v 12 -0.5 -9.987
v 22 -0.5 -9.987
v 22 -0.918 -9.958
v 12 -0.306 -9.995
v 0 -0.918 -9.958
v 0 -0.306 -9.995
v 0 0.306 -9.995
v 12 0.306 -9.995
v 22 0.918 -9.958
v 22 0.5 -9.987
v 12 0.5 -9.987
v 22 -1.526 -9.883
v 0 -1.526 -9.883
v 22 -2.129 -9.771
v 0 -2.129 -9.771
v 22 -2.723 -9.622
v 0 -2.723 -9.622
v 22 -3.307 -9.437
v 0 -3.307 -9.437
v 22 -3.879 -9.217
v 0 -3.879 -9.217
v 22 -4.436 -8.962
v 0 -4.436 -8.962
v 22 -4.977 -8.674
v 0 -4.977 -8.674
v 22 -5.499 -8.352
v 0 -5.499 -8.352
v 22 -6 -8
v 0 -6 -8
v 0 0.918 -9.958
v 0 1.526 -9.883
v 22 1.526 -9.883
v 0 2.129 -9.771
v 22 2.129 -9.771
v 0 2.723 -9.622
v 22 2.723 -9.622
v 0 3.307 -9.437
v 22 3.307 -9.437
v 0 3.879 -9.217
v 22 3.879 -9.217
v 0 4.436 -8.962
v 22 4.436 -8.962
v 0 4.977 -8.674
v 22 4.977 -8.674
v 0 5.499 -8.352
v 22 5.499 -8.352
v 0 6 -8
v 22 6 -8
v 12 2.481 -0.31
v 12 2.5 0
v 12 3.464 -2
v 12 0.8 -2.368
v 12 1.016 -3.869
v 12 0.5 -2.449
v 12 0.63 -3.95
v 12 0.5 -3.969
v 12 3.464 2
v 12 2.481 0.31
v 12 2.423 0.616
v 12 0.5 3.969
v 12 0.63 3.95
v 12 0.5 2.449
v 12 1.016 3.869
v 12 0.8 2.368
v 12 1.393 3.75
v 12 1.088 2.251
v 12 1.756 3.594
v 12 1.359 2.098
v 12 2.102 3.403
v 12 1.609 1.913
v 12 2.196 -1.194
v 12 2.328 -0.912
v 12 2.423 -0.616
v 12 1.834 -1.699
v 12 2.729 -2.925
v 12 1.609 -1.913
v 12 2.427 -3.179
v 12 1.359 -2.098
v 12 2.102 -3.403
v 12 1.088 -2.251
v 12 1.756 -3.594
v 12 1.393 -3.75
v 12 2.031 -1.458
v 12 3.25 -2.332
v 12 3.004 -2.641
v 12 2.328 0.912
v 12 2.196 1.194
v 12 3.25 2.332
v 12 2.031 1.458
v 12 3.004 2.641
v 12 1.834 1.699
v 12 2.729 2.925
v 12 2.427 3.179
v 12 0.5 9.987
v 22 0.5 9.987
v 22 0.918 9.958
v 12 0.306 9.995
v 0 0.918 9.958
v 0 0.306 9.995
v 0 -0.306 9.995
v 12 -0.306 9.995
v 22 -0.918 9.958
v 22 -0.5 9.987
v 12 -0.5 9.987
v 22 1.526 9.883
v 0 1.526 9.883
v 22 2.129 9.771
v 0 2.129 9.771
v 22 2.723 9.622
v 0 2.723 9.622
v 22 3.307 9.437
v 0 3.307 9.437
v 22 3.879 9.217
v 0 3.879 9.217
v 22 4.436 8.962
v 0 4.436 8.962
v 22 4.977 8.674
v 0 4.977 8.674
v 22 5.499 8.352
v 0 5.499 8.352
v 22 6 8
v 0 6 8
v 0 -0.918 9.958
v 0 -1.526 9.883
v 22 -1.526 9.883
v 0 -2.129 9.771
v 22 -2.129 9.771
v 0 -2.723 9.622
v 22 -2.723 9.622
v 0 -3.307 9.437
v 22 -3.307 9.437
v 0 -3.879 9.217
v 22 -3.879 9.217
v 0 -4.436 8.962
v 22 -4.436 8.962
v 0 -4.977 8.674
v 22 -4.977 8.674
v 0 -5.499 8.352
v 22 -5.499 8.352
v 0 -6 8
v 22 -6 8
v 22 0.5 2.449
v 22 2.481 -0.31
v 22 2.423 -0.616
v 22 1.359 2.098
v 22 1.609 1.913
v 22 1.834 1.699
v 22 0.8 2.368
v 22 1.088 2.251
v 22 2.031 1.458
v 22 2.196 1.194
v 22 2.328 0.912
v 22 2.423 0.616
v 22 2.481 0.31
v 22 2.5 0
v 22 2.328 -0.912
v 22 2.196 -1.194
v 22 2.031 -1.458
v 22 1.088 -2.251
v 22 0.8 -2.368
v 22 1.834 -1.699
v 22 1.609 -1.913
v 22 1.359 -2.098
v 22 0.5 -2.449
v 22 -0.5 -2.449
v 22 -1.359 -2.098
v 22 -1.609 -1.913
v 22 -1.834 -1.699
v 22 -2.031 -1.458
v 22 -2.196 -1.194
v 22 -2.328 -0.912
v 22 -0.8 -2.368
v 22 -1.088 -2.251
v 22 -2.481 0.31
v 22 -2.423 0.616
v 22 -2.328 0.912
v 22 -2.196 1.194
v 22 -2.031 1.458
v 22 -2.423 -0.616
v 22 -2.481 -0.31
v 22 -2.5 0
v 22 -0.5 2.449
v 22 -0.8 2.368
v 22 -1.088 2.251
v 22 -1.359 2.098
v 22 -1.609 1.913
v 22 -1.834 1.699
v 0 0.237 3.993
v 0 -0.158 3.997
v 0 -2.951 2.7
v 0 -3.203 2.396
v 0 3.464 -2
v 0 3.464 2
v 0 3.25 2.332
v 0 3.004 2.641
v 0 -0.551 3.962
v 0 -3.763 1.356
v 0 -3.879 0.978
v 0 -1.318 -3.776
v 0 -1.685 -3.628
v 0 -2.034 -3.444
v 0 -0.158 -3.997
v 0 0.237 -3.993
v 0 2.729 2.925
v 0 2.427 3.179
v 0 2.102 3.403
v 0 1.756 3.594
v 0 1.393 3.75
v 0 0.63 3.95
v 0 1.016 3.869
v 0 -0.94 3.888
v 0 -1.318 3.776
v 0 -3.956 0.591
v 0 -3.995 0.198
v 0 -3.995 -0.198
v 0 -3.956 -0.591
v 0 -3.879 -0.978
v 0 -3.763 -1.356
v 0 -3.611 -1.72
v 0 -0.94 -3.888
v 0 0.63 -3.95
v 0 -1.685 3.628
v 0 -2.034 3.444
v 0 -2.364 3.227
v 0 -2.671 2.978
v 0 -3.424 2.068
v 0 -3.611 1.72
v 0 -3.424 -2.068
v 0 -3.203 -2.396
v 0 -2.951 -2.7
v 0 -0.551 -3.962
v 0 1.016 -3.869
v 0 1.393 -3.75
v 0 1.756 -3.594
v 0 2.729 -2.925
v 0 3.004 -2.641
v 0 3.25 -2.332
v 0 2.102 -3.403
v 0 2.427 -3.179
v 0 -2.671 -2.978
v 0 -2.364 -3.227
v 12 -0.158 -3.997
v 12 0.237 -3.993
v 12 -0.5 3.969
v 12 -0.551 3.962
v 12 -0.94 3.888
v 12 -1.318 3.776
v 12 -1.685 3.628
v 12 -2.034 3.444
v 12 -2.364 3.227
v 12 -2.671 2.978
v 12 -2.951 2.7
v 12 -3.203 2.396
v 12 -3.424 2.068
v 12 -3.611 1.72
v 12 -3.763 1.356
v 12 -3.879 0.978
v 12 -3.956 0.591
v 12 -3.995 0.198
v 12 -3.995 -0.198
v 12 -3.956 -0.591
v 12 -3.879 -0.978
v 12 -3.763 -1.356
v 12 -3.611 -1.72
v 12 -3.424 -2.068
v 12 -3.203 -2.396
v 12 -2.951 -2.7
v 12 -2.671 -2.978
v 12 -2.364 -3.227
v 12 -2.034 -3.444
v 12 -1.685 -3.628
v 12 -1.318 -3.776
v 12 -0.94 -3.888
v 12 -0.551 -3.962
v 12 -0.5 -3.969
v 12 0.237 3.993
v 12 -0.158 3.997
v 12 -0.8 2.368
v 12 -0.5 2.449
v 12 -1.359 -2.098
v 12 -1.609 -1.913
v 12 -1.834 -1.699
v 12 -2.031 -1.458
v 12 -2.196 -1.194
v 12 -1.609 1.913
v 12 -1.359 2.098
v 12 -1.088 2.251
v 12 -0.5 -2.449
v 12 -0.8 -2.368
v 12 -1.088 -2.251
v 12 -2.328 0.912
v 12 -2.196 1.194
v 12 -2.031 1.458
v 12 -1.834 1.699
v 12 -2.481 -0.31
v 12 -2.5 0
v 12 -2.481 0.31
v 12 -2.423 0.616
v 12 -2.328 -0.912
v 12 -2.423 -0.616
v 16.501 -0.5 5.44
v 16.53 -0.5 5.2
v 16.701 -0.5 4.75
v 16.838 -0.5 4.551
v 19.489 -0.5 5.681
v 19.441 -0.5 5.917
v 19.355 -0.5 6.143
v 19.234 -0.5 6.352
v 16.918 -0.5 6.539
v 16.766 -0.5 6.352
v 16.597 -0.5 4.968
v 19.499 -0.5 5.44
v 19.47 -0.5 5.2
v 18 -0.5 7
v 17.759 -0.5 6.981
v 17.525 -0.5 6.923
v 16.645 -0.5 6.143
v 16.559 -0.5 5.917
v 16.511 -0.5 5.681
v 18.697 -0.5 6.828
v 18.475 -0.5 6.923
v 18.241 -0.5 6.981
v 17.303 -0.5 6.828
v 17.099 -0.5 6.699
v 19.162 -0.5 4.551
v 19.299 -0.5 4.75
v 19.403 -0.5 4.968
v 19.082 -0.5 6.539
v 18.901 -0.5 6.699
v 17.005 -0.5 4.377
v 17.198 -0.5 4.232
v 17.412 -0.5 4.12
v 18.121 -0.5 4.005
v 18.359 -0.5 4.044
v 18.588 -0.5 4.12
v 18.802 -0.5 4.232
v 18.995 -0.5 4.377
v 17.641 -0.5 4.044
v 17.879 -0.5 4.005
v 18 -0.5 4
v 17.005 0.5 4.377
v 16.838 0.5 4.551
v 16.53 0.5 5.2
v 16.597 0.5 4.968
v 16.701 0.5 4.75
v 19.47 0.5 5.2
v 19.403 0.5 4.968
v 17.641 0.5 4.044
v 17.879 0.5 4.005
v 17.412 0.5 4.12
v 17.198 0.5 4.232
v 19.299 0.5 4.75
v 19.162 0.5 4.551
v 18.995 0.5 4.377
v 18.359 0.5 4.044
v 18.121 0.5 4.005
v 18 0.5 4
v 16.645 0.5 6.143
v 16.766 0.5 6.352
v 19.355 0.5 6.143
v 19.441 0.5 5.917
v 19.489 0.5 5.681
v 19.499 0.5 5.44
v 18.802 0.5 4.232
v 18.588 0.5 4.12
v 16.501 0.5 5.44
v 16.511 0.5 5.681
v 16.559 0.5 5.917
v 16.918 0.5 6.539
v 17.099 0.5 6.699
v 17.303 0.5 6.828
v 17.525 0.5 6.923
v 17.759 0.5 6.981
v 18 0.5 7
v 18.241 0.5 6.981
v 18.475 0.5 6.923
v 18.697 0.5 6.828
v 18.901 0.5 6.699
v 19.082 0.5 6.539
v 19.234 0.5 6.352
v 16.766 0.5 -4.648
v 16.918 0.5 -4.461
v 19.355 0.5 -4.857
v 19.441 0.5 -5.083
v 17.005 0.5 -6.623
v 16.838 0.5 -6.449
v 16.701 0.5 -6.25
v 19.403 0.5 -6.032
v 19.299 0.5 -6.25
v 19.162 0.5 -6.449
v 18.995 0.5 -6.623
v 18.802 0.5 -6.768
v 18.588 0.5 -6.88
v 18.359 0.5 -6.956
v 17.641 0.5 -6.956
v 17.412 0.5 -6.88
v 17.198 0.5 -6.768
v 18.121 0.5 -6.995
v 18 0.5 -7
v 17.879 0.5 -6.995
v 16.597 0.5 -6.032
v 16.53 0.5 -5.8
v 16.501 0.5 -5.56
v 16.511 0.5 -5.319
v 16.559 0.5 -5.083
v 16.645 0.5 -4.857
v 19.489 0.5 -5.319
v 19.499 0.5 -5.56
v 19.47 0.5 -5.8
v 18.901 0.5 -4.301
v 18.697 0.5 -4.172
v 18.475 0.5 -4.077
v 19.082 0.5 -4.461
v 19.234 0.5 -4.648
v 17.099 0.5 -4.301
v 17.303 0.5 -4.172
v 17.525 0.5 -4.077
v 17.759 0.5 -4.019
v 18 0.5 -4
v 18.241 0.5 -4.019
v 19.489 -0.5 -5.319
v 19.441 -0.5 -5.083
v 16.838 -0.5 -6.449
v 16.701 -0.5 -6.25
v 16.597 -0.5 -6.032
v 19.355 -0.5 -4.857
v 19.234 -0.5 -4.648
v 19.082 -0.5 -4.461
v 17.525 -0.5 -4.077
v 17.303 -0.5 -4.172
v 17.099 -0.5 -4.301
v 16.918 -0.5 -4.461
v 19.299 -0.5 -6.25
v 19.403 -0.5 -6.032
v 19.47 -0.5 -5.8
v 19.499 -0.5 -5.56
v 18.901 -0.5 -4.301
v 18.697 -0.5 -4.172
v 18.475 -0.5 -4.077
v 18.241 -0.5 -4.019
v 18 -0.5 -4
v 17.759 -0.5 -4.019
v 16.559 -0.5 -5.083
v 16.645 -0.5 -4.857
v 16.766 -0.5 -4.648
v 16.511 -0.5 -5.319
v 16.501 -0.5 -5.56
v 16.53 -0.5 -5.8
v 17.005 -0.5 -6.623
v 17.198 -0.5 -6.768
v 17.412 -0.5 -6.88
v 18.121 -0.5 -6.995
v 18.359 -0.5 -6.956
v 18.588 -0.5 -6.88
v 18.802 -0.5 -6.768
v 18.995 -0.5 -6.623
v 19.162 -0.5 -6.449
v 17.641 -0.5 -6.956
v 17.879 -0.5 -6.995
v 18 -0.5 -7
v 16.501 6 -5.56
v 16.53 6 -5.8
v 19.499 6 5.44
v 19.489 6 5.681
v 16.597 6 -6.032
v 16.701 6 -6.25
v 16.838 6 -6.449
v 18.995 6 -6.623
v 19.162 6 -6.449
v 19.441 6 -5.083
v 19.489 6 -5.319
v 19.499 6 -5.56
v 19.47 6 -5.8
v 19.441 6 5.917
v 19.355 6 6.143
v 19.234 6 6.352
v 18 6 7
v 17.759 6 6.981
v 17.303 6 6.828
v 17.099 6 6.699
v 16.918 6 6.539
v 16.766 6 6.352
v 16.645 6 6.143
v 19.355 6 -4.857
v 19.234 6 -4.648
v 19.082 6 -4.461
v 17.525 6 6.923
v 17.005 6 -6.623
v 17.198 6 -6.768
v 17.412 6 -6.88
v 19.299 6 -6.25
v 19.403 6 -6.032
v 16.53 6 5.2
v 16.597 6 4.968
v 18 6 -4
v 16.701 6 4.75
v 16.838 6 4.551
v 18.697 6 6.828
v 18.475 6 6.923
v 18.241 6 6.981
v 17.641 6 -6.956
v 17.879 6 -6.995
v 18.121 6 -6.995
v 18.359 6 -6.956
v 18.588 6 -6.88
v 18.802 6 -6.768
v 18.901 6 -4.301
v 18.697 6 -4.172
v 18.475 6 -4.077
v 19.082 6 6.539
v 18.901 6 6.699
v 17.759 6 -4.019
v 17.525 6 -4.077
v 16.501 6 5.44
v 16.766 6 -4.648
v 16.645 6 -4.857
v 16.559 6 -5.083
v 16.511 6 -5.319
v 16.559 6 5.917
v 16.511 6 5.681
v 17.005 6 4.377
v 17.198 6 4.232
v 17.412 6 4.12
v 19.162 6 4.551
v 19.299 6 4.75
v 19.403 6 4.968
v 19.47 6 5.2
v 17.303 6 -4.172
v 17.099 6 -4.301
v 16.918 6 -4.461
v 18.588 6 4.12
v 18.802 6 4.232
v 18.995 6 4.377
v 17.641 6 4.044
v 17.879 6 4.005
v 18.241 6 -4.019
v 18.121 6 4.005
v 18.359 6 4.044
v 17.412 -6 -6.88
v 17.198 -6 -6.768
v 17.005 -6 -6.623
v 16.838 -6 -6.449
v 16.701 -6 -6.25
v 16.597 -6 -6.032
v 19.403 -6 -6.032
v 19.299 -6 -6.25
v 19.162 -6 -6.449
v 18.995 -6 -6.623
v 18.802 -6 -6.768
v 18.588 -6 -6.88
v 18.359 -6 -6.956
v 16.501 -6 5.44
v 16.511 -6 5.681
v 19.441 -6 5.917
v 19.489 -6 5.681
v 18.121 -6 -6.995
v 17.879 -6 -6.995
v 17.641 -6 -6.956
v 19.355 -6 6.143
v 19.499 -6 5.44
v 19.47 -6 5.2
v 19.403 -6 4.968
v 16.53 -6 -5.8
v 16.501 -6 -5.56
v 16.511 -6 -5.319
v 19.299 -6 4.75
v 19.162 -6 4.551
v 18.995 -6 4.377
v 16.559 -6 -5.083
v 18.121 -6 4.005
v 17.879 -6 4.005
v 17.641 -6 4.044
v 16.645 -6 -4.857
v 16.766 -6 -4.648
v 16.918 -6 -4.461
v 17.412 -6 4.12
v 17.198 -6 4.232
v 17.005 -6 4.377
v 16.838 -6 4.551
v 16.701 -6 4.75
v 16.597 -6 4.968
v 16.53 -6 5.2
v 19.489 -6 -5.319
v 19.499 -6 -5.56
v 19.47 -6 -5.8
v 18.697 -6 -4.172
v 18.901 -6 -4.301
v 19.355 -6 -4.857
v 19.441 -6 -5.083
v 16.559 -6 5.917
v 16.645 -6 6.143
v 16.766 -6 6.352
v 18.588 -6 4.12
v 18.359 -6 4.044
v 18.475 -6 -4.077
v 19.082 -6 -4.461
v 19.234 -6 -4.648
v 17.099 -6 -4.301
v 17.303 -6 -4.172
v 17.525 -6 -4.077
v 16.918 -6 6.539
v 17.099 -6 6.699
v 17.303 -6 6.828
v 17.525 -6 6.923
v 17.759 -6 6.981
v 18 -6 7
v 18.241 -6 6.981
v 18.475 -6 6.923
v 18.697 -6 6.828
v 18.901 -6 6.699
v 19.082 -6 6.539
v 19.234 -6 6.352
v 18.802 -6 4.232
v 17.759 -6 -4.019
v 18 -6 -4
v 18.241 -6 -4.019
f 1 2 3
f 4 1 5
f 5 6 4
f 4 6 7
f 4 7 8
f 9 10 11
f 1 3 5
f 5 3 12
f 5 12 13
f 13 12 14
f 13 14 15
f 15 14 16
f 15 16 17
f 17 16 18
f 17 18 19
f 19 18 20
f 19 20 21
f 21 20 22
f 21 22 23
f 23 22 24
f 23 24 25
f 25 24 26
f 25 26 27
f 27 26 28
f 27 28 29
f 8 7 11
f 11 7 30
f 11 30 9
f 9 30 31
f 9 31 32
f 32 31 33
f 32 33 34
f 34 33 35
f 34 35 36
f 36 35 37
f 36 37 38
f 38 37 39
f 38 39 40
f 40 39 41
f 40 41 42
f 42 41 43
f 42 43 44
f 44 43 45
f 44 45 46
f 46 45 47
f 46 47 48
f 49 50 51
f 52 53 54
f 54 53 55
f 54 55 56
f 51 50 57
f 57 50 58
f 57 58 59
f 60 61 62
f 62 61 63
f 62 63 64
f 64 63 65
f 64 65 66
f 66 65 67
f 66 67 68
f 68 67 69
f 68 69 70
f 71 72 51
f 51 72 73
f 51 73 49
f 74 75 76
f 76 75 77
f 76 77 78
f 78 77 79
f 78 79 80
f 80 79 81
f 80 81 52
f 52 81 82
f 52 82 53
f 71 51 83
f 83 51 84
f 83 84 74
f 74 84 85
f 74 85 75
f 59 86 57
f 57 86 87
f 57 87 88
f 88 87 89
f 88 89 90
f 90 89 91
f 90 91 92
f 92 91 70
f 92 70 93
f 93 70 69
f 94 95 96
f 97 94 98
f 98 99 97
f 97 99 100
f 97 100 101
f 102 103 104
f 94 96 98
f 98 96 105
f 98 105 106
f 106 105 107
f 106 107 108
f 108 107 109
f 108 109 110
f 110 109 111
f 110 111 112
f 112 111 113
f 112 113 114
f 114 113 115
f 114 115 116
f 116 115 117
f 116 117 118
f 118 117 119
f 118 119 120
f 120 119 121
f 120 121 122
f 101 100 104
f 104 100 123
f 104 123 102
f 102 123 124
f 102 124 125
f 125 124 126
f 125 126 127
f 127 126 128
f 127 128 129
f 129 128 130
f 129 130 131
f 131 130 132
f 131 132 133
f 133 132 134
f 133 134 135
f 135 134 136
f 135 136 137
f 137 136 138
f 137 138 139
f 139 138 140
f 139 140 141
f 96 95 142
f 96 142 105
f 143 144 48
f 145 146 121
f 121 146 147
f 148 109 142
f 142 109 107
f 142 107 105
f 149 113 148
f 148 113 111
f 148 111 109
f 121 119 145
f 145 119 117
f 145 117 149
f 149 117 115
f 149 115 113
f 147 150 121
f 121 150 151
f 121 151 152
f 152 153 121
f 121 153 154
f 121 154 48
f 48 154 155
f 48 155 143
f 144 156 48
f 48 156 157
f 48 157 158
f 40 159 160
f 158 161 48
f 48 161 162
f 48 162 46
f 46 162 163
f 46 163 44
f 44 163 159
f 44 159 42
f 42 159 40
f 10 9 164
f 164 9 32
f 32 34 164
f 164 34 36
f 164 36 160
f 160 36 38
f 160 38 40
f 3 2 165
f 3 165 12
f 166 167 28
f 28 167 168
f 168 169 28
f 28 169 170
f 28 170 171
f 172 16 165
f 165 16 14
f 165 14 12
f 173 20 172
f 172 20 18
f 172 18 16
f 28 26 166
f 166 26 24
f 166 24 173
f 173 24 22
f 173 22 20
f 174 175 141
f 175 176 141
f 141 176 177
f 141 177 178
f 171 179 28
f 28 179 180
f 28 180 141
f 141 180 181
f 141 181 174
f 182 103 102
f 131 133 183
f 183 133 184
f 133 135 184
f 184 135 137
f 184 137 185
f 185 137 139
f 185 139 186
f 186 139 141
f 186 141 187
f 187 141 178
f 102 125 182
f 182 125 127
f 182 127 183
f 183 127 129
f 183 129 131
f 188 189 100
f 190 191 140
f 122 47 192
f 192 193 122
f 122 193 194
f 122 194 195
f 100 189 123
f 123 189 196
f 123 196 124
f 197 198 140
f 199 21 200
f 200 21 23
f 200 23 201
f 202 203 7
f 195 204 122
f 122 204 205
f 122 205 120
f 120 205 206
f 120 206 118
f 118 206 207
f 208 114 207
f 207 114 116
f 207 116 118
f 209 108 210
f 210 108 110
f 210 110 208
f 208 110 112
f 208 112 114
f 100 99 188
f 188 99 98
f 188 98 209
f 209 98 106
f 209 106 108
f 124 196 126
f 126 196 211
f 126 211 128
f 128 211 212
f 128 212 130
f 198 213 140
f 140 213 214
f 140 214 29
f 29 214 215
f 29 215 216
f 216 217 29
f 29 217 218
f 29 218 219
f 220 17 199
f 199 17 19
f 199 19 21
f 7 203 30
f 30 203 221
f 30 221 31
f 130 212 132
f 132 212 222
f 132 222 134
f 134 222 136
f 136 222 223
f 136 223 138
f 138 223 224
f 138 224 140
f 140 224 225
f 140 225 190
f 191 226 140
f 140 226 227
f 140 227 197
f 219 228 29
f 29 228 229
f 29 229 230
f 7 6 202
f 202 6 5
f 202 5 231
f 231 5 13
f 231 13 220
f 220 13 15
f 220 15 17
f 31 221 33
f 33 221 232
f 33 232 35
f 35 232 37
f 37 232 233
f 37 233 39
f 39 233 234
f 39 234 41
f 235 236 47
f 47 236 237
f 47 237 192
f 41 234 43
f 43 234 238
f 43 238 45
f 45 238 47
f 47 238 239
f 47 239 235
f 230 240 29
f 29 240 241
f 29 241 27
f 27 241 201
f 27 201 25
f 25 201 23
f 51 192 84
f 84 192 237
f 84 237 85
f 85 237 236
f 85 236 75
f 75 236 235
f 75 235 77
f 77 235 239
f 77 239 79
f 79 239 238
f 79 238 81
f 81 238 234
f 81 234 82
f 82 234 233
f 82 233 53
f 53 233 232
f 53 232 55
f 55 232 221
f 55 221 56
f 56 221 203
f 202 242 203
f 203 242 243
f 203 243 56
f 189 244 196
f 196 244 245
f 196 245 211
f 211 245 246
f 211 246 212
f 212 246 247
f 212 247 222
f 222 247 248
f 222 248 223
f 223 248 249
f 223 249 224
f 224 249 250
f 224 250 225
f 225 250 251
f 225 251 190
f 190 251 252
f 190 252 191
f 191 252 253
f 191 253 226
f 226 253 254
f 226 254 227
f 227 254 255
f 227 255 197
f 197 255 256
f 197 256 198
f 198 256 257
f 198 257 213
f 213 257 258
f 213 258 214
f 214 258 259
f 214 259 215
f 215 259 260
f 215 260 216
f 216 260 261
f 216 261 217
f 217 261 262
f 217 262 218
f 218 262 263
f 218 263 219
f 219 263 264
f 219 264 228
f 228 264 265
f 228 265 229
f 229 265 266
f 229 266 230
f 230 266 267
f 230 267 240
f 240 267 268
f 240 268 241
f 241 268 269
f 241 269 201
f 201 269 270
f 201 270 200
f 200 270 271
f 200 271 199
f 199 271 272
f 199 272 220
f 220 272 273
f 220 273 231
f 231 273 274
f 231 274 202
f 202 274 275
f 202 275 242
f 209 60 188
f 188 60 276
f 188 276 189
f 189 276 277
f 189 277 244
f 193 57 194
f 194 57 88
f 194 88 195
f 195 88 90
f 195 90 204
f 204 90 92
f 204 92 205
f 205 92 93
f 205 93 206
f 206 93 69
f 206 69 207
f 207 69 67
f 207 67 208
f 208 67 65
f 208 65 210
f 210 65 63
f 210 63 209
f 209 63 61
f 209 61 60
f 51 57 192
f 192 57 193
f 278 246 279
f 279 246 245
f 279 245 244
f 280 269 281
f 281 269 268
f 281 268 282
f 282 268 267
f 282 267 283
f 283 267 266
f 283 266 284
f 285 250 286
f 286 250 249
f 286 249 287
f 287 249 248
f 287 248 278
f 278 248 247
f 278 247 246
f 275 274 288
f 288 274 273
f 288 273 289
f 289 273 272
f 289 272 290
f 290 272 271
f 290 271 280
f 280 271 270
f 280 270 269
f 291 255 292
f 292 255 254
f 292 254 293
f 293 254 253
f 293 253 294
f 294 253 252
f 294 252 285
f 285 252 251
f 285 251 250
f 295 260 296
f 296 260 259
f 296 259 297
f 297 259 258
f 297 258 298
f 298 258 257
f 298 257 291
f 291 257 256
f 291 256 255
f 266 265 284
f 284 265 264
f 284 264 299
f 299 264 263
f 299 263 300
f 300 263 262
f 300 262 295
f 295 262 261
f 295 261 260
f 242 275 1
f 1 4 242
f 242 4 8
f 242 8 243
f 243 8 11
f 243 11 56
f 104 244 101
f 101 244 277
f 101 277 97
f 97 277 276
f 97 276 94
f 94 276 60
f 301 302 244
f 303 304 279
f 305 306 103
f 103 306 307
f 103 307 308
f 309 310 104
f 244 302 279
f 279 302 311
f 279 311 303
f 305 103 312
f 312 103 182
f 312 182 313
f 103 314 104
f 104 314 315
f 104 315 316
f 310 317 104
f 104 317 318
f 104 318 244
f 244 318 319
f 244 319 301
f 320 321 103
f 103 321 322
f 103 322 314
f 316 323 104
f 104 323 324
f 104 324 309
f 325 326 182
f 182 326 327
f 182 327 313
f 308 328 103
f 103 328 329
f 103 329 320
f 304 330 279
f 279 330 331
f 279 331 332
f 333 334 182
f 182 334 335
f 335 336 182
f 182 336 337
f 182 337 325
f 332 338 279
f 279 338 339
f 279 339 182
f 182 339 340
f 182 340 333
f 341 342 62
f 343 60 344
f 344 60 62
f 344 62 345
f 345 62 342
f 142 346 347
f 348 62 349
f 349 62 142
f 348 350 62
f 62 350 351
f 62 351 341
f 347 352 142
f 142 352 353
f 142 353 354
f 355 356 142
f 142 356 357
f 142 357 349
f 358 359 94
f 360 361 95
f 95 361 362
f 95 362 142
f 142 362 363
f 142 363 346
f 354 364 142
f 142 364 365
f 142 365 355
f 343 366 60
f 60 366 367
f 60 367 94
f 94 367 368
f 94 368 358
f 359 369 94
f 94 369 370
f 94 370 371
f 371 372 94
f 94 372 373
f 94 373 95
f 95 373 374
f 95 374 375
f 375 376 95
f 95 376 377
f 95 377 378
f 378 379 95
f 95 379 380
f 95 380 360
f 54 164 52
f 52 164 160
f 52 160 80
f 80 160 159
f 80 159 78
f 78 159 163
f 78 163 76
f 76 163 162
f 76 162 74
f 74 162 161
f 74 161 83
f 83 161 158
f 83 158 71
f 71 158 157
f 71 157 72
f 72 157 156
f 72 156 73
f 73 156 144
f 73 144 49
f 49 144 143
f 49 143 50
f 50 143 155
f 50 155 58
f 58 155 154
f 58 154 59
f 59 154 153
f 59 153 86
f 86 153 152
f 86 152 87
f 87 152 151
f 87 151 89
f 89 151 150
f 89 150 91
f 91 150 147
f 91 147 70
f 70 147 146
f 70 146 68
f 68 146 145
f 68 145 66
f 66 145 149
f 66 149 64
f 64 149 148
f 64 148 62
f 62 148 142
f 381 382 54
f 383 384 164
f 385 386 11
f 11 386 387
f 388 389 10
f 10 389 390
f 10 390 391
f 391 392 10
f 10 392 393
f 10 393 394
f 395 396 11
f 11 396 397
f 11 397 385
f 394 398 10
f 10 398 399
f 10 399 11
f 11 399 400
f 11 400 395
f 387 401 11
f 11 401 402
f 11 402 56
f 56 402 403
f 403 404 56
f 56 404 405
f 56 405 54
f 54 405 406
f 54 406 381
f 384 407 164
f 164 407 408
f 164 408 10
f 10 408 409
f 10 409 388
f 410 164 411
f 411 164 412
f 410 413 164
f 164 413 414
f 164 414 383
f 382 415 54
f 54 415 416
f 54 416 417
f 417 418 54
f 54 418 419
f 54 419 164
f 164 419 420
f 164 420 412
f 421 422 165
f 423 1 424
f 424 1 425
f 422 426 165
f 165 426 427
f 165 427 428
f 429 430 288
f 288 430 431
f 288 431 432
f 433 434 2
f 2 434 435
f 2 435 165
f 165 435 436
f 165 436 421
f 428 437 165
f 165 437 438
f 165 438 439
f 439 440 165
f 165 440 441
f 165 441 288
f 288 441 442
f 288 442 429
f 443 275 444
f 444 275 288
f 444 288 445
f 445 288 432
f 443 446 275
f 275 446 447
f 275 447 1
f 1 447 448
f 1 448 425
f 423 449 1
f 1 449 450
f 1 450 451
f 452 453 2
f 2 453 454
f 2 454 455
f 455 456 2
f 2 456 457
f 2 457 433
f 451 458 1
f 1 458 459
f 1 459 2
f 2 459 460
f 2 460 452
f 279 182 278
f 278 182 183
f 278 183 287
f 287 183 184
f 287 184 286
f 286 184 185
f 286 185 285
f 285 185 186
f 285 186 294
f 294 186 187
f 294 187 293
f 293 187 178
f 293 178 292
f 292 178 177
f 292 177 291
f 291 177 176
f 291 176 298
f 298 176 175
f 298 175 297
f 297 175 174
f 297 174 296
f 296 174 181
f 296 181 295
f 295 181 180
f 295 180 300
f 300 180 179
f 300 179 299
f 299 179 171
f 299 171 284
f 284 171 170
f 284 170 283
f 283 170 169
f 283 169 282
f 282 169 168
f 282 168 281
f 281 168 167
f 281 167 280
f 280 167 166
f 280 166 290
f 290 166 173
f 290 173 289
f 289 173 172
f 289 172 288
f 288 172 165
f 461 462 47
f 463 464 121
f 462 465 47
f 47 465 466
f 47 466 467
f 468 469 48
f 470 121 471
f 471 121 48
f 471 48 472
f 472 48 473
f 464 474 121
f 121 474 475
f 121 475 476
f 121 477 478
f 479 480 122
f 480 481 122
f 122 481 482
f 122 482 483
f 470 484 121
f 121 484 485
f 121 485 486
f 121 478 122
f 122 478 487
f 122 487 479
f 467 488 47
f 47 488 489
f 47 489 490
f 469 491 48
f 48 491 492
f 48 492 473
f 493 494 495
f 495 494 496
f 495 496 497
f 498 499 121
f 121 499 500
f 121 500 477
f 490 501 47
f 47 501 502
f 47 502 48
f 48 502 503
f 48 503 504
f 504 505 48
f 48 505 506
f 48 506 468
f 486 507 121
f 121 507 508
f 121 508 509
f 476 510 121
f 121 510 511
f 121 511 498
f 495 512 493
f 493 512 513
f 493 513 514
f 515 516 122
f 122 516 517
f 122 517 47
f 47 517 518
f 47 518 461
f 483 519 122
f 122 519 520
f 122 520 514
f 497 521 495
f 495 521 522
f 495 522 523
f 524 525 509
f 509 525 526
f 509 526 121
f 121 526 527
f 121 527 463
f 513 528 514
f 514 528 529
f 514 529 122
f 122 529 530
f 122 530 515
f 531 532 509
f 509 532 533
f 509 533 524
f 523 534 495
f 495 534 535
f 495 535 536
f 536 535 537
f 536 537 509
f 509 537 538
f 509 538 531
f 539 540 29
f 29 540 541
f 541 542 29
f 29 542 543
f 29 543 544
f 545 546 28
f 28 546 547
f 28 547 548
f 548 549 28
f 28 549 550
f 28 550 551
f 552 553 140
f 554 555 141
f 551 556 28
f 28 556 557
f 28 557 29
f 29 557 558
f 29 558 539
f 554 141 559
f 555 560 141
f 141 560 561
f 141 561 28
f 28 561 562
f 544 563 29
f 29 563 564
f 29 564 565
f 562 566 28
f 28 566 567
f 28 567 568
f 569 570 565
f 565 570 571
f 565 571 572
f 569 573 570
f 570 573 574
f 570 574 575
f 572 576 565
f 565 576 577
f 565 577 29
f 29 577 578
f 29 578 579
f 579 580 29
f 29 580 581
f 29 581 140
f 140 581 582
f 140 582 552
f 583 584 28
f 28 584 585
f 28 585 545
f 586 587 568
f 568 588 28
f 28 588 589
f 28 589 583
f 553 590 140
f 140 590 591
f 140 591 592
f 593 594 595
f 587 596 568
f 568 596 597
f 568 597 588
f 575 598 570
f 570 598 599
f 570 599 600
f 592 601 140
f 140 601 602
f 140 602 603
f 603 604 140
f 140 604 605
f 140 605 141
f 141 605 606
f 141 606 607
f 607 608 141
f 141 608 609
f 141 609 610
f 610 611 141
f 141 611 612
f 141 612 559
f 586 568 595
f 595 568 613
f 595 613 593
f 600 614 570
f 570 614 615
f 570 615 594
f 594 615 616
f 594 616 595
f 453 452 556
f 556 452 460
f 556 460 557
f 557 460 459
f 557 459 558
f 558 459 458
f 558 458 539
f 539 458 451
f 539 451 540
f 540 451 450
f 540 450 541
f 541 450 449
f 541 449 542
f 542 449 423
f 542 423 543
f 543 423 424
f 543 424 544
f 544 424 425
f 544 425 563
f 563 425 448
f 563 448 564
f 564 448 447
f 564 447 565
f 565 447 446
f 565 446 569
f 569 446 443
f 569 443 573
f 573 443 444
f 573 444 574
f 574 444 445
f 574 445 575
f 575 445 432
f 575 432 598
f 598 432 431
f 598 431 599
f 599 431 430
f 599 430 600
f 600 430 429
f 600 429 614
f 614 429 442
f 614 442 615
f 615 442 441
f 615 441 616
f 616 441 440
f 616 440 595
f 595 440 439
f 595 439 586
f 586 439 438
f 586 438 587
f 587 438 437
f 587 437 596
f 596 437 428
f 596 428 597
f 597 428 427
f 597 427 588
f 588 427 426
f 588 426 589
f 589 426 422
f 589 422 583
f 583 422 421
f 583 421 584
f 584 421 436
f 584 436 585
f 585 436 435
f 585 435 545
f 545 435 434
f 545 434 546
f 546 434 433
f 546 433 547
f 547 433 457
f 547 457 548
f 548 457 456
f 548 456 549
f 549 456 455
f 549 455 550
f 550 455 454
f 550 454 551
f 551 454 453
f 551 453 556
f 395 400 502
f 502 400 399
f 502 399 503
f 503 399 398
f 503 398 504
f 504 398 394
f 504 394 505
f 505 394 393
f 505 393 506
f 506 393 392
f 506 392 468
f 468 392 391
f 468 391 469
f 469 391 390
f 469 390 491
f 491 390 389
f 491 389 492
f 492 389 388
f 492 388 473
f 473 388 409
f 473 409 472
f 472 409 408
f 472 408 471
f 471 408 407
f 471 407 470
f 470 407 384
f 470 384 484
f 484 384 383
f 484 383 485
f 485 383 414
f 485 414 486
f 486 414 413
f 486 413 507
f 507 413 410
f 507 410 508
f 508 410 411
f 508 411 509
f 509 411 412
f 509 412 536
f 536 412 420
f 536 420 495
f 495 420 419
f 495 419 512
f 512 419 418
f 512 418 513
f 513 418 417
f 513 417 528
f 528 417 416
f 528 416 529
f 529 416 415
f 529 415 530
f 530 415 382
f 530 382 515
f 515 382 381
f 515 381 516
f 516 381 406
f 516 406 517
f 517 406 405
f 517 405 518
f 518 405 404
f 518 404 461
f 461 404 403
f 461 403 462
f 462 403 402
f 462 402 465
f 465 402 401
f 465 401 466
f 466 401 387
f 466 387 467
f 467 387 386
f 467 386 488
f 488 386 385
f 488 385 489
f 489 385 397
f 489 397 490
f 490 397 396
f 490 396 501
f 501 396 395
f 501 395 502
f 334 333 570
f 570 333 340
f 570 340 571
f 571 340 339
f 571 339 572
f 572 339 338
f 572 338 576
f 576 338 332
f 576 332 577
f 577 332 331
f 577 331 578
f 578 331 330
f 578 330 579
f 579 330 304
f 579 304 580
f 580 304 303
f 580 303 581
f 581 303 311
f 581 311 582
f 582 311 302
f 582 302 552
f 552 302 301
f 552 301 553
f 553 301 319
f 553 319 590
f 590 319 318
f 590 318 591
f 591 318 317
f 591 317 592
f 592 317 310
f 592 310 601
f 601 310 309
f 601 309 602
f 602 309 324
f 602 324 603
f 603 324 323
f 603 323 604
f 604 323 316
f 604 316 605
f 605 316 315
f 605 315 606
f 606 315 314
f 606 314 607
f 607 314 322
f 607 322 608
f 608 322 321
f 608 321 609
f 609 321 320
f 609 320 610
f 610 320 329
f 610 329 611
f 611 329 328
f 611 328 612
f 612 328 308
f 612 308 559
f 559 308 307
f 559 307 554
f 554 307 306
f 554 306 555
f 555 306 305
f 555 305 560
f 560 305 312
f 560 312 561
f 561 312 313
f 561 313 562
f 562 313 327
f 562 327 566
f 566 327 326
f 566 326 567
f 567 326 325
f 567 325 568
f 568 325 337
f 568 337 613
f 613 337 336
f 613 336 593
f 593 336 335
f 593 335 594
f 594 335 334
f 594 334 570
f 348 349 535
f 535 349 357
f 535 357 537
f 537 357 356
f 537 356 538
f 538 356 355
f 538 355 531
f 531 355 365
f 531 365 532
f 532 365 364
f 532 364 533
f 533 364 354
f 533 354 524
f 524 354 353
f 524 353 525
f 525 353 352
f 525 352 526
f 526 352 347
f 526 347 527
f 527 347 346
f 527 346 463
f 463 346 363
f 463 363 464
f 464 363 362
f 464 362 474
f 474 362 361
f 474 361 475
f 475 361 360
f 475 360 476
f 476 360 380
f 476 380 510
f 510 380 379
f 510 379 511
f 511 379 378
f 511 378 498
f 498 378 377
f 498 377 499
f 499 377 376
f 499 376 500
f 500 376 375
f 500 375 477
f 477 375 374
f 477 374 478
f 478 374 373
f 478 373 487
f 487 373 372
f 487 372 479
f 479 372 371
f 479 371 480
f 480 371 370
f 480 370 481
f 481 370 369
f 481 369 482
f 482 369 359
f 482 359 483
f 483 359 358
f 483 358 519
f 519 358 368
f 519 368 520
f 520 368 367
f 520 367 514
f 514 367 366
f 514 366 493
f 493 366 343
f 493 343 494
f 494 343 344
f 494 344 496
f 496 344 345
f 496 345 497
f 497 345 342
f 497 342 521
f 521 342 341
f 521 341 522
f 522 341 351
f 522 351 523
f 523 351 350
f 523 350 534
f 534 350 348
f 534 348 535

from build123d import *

# Parameters (mm, degrees)
SKETCH1_R           = 10
BOSS_EXTRUDE1_DEPTH = 22
CUT_EXTRUDE1_DEPTH  = 12
CUT_EXTRUDE2_DEPTH  = 10
SKETCH5_W           = 16
SKETCH5_H           = 4
CUT_EXTRUDE4_DEPTH  = 23
SKETCH4_R           = 1.5
CUT_EXTRUDE3_DEPTH  = 13


with BuildPart() as part:
    # Sketch1 → Boss-Extrude1 (new body)
    with BuildSketch(Plane(origin=(0, 0, 0), x_dir=(0, 0, -1), z_dir=(1, 0, 0))):
        Circle(SKETCH1_R)
    extrude(amount=BOSS_EXTRUDE1_DEPTH)

    # Sketch2 → Cut-Extrude1 (cut)
    with BuildSketch(Plane.ZY):
        with BuildLine():
            Line((-2, 3.464101615), (2, 3.464101615))
            ThreePointArc((2, 3.464101615), (0, -4), (-2, 3.464101615))
        make_face()
    extrude(amount=-CUT_EXTRUDE1_DEPTH, mode=Mode.SUBTRACT)

    # Sketch3 → Cut-Extrude2 (cut)
    with BuildSketch(Plane(origin=(22, 0, 0), x_dir=(0, 0, -1), z_dir=(1, 0, 0))):
        with BuildLine():
            Line((-2.449489743, 0.5), (-9.987492178, 0.5))
            ThreePointArc((-9.987492178, 0.5), (-9.996872555, 0.250078211), (-10, 0))
            ThreePointArc((-10, 0), (-9.996872555, -0.250078211), (-9.987492178, -0.5))
            Line((-9.987492178, -0.5), (-2.449489743, -0.5))
            ThreePointArc((-2.449489743, -0.5), (-2.5, 0), (-2.449489743, 0.5))
        make_face()
        with BuildLine():
            ThreePointArc((10, 0), (9.996872555, 0.250078211), (9.987492178, 0.5))
            Line((9.987492178, 0.5), (2.449489743, 0.5))
            ThreePointArc((2.449489743, 0.5), (2.487340383, 0.251272405), (2.5, 0))
            ThreePointArc((2.5, 0), (2.487340383, -0.251272405), (2.449489743, -0.5))
            Line((2.449489743, -0.5), (9.987492178, -0.5))
            ThreePointArc((9.987492178, -0.5), (9.996872555, -0.250078211), (10, 0))
        make_face()
        with BuildLine():
            Line((2.449489743, -0.5), (-2.449489743, -0.5))
            ThreePointArc((-2.449489743, -0.5), (0, -2.5), (2.449489743, -0.5))
        make_face()
        with BuildLine():
            Line((2.449489743, 0.5), (-2.449489743, 0.5))
            ThreePointArc((-2.449489743, 0.5), (-2.5, 0), (-2.449489743, -0.5))
            Line((-2.449489743, -0.5), (2.449489743, -0.5))
            ThreePointArc((2.449489743, -0.5), (2.487340383, -0.251272405), (2.5, 0))
            ThreePointArc((2.5, 0), (2.487340383, 0.251272405), (2.449489743, 0.5))
        make_face()
        with BuildLine():
            ThreePointArc((2.449489743, 0.5), (0, 2.5), (-2.449489743, 0.5))
            Line((-2.449489743, 0.5), (2.449489743, 0.5))
        make_face()
    extrude(amount=-CUT_EXTRUDE2_DEPTH, mode=Mode.SUBTRACT)

    # Sketch5 → Cut-Extrude4 (cut, through all)
    with BuildSketch(Plane(origin=(22, 0, 0), x_dir=(0, 0, -1), z_dir=(1, 0, 0))):
        with Locations((0, 8)):
            Rectangle(SKETCH5_W, SKETCH5_H)
        with Locations((0, -8)):
            Rectangle(SKETCH5_W, SKETCH5_H)
    extrude(amount=-CUT_EXTRUDE4_DEPTH, mode=Mode.SUBTRACT)

    # Sketch4 → Cut-Extrude3 (cut, through all)
    with BuildSketch(Plane(origin=(0, 6, 0), x_dir=(1, 0, 0), z_dir=(0, 1, 0))):
        with Locations((18, 5.5)):
            Circle(SKETCH4_R)
        with Locations((18, -5.5)):
            Circle(SKETCH4_R)
    extrude(amount=-CUT_EXTRUDE3_DEPTH, mode=Mode.SUBTRACT)


solid = part.part
